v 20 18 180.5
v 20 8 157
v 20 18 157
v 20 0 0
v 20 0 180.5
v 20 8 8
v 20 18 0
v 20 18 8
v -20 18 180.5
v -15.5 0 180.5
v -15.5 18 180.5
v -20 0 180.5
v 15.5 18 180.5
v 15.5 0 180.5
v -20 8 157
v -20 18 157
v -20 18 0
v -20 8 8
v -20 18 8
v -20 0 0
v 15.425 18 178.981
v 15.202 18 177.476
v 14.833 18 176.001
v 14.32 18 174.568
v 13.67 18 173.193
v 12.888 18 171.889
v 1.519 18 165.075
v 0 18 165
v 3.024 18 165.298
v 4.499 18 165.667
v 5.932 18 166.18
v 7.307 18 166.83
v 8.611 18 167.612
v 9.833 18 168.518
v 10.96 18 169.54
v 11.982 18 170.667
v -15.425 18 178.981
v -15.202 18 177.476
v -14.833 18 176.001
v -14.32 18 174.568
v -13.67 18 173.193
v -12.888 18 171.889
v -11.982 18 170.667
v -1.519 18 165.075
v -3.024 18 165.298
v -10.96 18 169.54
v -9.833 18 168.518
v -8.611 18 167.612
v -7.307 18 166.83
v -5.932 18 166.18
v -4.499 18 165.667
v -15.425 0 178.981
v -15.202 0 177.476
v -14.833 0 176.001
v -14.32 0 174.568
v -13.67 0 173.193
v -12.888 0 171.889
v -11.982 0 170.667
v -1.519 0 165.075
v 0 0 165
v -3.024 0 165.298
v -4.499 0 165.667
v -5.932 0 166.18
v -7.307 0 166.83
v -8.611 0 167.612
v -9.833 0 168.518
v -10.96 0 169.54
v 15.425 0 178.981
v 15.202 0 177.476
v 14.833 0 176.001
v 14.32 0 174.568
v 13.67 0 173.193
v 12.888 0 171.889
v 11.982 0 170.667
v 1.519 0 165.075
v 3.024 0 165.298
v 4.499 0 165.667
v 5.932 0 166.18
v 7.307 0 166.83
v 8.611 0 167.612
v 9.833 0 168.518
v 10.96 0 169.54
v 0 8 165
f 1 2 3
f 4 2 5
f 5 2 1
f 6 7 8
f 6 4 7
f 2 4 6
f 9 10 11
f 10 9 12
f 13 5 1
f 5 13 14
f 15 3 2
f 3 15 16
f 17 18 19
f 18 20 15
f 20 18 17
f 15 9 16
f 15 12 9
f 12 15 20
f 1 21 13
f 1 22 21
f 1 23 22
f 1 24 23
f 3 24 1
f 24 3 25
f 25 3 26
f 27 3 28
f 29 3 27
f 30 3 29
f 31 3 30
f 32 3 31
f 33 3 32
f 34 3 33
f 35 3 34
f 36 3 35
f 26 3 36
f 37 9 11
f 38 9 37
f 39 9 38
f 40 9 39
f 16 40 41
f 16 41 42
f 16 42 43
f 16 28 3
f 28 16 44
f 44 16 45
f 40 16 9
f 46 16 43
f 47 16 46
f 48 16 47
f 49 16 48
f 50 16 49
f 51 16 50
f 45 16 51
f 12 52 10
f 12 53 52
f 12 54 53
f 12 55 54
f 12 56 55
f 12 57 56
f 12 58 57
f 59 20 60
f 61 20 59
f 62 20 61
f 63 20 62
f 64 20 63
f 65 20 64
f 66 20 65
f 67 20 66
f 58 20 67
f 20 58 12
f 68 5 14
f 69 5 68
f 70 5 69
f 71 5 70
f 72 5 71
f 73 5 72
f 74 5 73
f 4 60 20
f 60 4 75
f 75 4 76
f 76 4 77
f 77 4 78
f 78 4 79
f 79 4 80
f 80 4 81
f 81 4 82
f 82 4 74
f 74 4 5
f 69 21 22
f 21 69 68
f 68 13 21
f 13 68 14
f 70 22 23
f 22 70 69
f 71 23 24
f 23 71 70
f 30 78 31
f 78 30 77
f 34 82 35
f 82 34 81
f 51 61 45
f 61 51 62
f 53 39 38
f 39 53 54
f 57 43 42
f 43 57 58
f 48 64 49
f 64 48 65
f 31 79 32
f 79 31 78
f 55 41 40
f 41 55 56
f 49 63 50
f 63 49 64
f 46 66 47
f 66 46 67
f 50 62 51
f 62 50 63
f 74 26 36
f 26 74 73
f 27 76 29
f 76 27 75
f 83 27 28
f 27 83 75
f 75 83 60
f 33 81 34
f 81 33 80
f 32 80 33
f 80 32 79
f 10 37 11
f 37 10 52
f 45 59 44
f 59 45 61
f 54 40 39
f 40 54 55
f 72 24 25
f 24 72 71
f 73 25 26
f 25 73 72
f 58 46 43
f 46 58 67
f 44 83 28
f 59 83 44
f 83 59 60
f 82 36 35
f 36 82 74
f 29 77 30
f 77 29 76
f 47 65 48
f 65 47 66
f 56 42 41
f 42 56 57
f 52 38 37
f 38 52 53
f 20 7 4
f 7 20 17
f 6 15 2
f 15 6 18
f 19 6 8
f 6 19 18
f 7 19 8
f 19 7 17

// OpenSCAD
// Curtain Rod Stand - Flat Bracket Style
// Flat piece against window frame with half-circle cutout for rod
// PRINT: Flat on bed, no supports needed

/* [Rod Dimensions] */
rod_diameter = 30;       // 3cm rod diameter (mm)
rod_clearance = 1;       // Extra space around rod

/* [Stand Dimensions] */
// Bottom of U at 165mm, so stand_height = 165 + rod_radius
stand_height = 165 + (30 + 1)/2;  // ~180.5mm, puts bottom of U at 165mm
stand_width = 40;        // Width of the flat piece
thickness = 8;          // 8mm thick

/* [Foot Dimensions] */
foot_depth = 10;         // How far foot extends forward
foot_height = 8;         // Same as thickness

/* [Print Settings] */
$fn = 64;

// Derived
rod_r = (rod_diameter + rod_clearance) / 2;

// Main assembly
cup_extension = 10;  // How far cup extends forward from main plane

union() {
    // Main flat vertical piece
    translate([-stand_width/2, 0, 0])
        cube([stand_width, thickness, stand_height - rod_r]);

    // Extended cup area at top
    difference() {
        // Cup block extending forward
        translate([-stand_width/2, 0, stand_height - rod_r - thickness])
            cube([stand_width, thickness + cup_extension, rod_r + thickness]);

        // Semicircle cutout
        translate([0, -1, stand_height])
            rotate([-90, 0, 0])
                cylinder(r=rod_r, h=thickness + cup_extension + 2);
    }

    // Foot extending forward (same direction as rod), full width
    translate([-stand_width/2, thickness, 0])
        cube([stand_width, foot_depth, foot_height]);
}

// Info
echo(str("Stand height: ", stand_height, "mm (", stand_height/25.4, "\")"));
echo(str("Rod cutout diameter: ", rod_r*2, "mm"));
echo(str("Thickness: ", thickness, "mm"));
echo(str("Foot depth: ", foot_depth, "mm"));
